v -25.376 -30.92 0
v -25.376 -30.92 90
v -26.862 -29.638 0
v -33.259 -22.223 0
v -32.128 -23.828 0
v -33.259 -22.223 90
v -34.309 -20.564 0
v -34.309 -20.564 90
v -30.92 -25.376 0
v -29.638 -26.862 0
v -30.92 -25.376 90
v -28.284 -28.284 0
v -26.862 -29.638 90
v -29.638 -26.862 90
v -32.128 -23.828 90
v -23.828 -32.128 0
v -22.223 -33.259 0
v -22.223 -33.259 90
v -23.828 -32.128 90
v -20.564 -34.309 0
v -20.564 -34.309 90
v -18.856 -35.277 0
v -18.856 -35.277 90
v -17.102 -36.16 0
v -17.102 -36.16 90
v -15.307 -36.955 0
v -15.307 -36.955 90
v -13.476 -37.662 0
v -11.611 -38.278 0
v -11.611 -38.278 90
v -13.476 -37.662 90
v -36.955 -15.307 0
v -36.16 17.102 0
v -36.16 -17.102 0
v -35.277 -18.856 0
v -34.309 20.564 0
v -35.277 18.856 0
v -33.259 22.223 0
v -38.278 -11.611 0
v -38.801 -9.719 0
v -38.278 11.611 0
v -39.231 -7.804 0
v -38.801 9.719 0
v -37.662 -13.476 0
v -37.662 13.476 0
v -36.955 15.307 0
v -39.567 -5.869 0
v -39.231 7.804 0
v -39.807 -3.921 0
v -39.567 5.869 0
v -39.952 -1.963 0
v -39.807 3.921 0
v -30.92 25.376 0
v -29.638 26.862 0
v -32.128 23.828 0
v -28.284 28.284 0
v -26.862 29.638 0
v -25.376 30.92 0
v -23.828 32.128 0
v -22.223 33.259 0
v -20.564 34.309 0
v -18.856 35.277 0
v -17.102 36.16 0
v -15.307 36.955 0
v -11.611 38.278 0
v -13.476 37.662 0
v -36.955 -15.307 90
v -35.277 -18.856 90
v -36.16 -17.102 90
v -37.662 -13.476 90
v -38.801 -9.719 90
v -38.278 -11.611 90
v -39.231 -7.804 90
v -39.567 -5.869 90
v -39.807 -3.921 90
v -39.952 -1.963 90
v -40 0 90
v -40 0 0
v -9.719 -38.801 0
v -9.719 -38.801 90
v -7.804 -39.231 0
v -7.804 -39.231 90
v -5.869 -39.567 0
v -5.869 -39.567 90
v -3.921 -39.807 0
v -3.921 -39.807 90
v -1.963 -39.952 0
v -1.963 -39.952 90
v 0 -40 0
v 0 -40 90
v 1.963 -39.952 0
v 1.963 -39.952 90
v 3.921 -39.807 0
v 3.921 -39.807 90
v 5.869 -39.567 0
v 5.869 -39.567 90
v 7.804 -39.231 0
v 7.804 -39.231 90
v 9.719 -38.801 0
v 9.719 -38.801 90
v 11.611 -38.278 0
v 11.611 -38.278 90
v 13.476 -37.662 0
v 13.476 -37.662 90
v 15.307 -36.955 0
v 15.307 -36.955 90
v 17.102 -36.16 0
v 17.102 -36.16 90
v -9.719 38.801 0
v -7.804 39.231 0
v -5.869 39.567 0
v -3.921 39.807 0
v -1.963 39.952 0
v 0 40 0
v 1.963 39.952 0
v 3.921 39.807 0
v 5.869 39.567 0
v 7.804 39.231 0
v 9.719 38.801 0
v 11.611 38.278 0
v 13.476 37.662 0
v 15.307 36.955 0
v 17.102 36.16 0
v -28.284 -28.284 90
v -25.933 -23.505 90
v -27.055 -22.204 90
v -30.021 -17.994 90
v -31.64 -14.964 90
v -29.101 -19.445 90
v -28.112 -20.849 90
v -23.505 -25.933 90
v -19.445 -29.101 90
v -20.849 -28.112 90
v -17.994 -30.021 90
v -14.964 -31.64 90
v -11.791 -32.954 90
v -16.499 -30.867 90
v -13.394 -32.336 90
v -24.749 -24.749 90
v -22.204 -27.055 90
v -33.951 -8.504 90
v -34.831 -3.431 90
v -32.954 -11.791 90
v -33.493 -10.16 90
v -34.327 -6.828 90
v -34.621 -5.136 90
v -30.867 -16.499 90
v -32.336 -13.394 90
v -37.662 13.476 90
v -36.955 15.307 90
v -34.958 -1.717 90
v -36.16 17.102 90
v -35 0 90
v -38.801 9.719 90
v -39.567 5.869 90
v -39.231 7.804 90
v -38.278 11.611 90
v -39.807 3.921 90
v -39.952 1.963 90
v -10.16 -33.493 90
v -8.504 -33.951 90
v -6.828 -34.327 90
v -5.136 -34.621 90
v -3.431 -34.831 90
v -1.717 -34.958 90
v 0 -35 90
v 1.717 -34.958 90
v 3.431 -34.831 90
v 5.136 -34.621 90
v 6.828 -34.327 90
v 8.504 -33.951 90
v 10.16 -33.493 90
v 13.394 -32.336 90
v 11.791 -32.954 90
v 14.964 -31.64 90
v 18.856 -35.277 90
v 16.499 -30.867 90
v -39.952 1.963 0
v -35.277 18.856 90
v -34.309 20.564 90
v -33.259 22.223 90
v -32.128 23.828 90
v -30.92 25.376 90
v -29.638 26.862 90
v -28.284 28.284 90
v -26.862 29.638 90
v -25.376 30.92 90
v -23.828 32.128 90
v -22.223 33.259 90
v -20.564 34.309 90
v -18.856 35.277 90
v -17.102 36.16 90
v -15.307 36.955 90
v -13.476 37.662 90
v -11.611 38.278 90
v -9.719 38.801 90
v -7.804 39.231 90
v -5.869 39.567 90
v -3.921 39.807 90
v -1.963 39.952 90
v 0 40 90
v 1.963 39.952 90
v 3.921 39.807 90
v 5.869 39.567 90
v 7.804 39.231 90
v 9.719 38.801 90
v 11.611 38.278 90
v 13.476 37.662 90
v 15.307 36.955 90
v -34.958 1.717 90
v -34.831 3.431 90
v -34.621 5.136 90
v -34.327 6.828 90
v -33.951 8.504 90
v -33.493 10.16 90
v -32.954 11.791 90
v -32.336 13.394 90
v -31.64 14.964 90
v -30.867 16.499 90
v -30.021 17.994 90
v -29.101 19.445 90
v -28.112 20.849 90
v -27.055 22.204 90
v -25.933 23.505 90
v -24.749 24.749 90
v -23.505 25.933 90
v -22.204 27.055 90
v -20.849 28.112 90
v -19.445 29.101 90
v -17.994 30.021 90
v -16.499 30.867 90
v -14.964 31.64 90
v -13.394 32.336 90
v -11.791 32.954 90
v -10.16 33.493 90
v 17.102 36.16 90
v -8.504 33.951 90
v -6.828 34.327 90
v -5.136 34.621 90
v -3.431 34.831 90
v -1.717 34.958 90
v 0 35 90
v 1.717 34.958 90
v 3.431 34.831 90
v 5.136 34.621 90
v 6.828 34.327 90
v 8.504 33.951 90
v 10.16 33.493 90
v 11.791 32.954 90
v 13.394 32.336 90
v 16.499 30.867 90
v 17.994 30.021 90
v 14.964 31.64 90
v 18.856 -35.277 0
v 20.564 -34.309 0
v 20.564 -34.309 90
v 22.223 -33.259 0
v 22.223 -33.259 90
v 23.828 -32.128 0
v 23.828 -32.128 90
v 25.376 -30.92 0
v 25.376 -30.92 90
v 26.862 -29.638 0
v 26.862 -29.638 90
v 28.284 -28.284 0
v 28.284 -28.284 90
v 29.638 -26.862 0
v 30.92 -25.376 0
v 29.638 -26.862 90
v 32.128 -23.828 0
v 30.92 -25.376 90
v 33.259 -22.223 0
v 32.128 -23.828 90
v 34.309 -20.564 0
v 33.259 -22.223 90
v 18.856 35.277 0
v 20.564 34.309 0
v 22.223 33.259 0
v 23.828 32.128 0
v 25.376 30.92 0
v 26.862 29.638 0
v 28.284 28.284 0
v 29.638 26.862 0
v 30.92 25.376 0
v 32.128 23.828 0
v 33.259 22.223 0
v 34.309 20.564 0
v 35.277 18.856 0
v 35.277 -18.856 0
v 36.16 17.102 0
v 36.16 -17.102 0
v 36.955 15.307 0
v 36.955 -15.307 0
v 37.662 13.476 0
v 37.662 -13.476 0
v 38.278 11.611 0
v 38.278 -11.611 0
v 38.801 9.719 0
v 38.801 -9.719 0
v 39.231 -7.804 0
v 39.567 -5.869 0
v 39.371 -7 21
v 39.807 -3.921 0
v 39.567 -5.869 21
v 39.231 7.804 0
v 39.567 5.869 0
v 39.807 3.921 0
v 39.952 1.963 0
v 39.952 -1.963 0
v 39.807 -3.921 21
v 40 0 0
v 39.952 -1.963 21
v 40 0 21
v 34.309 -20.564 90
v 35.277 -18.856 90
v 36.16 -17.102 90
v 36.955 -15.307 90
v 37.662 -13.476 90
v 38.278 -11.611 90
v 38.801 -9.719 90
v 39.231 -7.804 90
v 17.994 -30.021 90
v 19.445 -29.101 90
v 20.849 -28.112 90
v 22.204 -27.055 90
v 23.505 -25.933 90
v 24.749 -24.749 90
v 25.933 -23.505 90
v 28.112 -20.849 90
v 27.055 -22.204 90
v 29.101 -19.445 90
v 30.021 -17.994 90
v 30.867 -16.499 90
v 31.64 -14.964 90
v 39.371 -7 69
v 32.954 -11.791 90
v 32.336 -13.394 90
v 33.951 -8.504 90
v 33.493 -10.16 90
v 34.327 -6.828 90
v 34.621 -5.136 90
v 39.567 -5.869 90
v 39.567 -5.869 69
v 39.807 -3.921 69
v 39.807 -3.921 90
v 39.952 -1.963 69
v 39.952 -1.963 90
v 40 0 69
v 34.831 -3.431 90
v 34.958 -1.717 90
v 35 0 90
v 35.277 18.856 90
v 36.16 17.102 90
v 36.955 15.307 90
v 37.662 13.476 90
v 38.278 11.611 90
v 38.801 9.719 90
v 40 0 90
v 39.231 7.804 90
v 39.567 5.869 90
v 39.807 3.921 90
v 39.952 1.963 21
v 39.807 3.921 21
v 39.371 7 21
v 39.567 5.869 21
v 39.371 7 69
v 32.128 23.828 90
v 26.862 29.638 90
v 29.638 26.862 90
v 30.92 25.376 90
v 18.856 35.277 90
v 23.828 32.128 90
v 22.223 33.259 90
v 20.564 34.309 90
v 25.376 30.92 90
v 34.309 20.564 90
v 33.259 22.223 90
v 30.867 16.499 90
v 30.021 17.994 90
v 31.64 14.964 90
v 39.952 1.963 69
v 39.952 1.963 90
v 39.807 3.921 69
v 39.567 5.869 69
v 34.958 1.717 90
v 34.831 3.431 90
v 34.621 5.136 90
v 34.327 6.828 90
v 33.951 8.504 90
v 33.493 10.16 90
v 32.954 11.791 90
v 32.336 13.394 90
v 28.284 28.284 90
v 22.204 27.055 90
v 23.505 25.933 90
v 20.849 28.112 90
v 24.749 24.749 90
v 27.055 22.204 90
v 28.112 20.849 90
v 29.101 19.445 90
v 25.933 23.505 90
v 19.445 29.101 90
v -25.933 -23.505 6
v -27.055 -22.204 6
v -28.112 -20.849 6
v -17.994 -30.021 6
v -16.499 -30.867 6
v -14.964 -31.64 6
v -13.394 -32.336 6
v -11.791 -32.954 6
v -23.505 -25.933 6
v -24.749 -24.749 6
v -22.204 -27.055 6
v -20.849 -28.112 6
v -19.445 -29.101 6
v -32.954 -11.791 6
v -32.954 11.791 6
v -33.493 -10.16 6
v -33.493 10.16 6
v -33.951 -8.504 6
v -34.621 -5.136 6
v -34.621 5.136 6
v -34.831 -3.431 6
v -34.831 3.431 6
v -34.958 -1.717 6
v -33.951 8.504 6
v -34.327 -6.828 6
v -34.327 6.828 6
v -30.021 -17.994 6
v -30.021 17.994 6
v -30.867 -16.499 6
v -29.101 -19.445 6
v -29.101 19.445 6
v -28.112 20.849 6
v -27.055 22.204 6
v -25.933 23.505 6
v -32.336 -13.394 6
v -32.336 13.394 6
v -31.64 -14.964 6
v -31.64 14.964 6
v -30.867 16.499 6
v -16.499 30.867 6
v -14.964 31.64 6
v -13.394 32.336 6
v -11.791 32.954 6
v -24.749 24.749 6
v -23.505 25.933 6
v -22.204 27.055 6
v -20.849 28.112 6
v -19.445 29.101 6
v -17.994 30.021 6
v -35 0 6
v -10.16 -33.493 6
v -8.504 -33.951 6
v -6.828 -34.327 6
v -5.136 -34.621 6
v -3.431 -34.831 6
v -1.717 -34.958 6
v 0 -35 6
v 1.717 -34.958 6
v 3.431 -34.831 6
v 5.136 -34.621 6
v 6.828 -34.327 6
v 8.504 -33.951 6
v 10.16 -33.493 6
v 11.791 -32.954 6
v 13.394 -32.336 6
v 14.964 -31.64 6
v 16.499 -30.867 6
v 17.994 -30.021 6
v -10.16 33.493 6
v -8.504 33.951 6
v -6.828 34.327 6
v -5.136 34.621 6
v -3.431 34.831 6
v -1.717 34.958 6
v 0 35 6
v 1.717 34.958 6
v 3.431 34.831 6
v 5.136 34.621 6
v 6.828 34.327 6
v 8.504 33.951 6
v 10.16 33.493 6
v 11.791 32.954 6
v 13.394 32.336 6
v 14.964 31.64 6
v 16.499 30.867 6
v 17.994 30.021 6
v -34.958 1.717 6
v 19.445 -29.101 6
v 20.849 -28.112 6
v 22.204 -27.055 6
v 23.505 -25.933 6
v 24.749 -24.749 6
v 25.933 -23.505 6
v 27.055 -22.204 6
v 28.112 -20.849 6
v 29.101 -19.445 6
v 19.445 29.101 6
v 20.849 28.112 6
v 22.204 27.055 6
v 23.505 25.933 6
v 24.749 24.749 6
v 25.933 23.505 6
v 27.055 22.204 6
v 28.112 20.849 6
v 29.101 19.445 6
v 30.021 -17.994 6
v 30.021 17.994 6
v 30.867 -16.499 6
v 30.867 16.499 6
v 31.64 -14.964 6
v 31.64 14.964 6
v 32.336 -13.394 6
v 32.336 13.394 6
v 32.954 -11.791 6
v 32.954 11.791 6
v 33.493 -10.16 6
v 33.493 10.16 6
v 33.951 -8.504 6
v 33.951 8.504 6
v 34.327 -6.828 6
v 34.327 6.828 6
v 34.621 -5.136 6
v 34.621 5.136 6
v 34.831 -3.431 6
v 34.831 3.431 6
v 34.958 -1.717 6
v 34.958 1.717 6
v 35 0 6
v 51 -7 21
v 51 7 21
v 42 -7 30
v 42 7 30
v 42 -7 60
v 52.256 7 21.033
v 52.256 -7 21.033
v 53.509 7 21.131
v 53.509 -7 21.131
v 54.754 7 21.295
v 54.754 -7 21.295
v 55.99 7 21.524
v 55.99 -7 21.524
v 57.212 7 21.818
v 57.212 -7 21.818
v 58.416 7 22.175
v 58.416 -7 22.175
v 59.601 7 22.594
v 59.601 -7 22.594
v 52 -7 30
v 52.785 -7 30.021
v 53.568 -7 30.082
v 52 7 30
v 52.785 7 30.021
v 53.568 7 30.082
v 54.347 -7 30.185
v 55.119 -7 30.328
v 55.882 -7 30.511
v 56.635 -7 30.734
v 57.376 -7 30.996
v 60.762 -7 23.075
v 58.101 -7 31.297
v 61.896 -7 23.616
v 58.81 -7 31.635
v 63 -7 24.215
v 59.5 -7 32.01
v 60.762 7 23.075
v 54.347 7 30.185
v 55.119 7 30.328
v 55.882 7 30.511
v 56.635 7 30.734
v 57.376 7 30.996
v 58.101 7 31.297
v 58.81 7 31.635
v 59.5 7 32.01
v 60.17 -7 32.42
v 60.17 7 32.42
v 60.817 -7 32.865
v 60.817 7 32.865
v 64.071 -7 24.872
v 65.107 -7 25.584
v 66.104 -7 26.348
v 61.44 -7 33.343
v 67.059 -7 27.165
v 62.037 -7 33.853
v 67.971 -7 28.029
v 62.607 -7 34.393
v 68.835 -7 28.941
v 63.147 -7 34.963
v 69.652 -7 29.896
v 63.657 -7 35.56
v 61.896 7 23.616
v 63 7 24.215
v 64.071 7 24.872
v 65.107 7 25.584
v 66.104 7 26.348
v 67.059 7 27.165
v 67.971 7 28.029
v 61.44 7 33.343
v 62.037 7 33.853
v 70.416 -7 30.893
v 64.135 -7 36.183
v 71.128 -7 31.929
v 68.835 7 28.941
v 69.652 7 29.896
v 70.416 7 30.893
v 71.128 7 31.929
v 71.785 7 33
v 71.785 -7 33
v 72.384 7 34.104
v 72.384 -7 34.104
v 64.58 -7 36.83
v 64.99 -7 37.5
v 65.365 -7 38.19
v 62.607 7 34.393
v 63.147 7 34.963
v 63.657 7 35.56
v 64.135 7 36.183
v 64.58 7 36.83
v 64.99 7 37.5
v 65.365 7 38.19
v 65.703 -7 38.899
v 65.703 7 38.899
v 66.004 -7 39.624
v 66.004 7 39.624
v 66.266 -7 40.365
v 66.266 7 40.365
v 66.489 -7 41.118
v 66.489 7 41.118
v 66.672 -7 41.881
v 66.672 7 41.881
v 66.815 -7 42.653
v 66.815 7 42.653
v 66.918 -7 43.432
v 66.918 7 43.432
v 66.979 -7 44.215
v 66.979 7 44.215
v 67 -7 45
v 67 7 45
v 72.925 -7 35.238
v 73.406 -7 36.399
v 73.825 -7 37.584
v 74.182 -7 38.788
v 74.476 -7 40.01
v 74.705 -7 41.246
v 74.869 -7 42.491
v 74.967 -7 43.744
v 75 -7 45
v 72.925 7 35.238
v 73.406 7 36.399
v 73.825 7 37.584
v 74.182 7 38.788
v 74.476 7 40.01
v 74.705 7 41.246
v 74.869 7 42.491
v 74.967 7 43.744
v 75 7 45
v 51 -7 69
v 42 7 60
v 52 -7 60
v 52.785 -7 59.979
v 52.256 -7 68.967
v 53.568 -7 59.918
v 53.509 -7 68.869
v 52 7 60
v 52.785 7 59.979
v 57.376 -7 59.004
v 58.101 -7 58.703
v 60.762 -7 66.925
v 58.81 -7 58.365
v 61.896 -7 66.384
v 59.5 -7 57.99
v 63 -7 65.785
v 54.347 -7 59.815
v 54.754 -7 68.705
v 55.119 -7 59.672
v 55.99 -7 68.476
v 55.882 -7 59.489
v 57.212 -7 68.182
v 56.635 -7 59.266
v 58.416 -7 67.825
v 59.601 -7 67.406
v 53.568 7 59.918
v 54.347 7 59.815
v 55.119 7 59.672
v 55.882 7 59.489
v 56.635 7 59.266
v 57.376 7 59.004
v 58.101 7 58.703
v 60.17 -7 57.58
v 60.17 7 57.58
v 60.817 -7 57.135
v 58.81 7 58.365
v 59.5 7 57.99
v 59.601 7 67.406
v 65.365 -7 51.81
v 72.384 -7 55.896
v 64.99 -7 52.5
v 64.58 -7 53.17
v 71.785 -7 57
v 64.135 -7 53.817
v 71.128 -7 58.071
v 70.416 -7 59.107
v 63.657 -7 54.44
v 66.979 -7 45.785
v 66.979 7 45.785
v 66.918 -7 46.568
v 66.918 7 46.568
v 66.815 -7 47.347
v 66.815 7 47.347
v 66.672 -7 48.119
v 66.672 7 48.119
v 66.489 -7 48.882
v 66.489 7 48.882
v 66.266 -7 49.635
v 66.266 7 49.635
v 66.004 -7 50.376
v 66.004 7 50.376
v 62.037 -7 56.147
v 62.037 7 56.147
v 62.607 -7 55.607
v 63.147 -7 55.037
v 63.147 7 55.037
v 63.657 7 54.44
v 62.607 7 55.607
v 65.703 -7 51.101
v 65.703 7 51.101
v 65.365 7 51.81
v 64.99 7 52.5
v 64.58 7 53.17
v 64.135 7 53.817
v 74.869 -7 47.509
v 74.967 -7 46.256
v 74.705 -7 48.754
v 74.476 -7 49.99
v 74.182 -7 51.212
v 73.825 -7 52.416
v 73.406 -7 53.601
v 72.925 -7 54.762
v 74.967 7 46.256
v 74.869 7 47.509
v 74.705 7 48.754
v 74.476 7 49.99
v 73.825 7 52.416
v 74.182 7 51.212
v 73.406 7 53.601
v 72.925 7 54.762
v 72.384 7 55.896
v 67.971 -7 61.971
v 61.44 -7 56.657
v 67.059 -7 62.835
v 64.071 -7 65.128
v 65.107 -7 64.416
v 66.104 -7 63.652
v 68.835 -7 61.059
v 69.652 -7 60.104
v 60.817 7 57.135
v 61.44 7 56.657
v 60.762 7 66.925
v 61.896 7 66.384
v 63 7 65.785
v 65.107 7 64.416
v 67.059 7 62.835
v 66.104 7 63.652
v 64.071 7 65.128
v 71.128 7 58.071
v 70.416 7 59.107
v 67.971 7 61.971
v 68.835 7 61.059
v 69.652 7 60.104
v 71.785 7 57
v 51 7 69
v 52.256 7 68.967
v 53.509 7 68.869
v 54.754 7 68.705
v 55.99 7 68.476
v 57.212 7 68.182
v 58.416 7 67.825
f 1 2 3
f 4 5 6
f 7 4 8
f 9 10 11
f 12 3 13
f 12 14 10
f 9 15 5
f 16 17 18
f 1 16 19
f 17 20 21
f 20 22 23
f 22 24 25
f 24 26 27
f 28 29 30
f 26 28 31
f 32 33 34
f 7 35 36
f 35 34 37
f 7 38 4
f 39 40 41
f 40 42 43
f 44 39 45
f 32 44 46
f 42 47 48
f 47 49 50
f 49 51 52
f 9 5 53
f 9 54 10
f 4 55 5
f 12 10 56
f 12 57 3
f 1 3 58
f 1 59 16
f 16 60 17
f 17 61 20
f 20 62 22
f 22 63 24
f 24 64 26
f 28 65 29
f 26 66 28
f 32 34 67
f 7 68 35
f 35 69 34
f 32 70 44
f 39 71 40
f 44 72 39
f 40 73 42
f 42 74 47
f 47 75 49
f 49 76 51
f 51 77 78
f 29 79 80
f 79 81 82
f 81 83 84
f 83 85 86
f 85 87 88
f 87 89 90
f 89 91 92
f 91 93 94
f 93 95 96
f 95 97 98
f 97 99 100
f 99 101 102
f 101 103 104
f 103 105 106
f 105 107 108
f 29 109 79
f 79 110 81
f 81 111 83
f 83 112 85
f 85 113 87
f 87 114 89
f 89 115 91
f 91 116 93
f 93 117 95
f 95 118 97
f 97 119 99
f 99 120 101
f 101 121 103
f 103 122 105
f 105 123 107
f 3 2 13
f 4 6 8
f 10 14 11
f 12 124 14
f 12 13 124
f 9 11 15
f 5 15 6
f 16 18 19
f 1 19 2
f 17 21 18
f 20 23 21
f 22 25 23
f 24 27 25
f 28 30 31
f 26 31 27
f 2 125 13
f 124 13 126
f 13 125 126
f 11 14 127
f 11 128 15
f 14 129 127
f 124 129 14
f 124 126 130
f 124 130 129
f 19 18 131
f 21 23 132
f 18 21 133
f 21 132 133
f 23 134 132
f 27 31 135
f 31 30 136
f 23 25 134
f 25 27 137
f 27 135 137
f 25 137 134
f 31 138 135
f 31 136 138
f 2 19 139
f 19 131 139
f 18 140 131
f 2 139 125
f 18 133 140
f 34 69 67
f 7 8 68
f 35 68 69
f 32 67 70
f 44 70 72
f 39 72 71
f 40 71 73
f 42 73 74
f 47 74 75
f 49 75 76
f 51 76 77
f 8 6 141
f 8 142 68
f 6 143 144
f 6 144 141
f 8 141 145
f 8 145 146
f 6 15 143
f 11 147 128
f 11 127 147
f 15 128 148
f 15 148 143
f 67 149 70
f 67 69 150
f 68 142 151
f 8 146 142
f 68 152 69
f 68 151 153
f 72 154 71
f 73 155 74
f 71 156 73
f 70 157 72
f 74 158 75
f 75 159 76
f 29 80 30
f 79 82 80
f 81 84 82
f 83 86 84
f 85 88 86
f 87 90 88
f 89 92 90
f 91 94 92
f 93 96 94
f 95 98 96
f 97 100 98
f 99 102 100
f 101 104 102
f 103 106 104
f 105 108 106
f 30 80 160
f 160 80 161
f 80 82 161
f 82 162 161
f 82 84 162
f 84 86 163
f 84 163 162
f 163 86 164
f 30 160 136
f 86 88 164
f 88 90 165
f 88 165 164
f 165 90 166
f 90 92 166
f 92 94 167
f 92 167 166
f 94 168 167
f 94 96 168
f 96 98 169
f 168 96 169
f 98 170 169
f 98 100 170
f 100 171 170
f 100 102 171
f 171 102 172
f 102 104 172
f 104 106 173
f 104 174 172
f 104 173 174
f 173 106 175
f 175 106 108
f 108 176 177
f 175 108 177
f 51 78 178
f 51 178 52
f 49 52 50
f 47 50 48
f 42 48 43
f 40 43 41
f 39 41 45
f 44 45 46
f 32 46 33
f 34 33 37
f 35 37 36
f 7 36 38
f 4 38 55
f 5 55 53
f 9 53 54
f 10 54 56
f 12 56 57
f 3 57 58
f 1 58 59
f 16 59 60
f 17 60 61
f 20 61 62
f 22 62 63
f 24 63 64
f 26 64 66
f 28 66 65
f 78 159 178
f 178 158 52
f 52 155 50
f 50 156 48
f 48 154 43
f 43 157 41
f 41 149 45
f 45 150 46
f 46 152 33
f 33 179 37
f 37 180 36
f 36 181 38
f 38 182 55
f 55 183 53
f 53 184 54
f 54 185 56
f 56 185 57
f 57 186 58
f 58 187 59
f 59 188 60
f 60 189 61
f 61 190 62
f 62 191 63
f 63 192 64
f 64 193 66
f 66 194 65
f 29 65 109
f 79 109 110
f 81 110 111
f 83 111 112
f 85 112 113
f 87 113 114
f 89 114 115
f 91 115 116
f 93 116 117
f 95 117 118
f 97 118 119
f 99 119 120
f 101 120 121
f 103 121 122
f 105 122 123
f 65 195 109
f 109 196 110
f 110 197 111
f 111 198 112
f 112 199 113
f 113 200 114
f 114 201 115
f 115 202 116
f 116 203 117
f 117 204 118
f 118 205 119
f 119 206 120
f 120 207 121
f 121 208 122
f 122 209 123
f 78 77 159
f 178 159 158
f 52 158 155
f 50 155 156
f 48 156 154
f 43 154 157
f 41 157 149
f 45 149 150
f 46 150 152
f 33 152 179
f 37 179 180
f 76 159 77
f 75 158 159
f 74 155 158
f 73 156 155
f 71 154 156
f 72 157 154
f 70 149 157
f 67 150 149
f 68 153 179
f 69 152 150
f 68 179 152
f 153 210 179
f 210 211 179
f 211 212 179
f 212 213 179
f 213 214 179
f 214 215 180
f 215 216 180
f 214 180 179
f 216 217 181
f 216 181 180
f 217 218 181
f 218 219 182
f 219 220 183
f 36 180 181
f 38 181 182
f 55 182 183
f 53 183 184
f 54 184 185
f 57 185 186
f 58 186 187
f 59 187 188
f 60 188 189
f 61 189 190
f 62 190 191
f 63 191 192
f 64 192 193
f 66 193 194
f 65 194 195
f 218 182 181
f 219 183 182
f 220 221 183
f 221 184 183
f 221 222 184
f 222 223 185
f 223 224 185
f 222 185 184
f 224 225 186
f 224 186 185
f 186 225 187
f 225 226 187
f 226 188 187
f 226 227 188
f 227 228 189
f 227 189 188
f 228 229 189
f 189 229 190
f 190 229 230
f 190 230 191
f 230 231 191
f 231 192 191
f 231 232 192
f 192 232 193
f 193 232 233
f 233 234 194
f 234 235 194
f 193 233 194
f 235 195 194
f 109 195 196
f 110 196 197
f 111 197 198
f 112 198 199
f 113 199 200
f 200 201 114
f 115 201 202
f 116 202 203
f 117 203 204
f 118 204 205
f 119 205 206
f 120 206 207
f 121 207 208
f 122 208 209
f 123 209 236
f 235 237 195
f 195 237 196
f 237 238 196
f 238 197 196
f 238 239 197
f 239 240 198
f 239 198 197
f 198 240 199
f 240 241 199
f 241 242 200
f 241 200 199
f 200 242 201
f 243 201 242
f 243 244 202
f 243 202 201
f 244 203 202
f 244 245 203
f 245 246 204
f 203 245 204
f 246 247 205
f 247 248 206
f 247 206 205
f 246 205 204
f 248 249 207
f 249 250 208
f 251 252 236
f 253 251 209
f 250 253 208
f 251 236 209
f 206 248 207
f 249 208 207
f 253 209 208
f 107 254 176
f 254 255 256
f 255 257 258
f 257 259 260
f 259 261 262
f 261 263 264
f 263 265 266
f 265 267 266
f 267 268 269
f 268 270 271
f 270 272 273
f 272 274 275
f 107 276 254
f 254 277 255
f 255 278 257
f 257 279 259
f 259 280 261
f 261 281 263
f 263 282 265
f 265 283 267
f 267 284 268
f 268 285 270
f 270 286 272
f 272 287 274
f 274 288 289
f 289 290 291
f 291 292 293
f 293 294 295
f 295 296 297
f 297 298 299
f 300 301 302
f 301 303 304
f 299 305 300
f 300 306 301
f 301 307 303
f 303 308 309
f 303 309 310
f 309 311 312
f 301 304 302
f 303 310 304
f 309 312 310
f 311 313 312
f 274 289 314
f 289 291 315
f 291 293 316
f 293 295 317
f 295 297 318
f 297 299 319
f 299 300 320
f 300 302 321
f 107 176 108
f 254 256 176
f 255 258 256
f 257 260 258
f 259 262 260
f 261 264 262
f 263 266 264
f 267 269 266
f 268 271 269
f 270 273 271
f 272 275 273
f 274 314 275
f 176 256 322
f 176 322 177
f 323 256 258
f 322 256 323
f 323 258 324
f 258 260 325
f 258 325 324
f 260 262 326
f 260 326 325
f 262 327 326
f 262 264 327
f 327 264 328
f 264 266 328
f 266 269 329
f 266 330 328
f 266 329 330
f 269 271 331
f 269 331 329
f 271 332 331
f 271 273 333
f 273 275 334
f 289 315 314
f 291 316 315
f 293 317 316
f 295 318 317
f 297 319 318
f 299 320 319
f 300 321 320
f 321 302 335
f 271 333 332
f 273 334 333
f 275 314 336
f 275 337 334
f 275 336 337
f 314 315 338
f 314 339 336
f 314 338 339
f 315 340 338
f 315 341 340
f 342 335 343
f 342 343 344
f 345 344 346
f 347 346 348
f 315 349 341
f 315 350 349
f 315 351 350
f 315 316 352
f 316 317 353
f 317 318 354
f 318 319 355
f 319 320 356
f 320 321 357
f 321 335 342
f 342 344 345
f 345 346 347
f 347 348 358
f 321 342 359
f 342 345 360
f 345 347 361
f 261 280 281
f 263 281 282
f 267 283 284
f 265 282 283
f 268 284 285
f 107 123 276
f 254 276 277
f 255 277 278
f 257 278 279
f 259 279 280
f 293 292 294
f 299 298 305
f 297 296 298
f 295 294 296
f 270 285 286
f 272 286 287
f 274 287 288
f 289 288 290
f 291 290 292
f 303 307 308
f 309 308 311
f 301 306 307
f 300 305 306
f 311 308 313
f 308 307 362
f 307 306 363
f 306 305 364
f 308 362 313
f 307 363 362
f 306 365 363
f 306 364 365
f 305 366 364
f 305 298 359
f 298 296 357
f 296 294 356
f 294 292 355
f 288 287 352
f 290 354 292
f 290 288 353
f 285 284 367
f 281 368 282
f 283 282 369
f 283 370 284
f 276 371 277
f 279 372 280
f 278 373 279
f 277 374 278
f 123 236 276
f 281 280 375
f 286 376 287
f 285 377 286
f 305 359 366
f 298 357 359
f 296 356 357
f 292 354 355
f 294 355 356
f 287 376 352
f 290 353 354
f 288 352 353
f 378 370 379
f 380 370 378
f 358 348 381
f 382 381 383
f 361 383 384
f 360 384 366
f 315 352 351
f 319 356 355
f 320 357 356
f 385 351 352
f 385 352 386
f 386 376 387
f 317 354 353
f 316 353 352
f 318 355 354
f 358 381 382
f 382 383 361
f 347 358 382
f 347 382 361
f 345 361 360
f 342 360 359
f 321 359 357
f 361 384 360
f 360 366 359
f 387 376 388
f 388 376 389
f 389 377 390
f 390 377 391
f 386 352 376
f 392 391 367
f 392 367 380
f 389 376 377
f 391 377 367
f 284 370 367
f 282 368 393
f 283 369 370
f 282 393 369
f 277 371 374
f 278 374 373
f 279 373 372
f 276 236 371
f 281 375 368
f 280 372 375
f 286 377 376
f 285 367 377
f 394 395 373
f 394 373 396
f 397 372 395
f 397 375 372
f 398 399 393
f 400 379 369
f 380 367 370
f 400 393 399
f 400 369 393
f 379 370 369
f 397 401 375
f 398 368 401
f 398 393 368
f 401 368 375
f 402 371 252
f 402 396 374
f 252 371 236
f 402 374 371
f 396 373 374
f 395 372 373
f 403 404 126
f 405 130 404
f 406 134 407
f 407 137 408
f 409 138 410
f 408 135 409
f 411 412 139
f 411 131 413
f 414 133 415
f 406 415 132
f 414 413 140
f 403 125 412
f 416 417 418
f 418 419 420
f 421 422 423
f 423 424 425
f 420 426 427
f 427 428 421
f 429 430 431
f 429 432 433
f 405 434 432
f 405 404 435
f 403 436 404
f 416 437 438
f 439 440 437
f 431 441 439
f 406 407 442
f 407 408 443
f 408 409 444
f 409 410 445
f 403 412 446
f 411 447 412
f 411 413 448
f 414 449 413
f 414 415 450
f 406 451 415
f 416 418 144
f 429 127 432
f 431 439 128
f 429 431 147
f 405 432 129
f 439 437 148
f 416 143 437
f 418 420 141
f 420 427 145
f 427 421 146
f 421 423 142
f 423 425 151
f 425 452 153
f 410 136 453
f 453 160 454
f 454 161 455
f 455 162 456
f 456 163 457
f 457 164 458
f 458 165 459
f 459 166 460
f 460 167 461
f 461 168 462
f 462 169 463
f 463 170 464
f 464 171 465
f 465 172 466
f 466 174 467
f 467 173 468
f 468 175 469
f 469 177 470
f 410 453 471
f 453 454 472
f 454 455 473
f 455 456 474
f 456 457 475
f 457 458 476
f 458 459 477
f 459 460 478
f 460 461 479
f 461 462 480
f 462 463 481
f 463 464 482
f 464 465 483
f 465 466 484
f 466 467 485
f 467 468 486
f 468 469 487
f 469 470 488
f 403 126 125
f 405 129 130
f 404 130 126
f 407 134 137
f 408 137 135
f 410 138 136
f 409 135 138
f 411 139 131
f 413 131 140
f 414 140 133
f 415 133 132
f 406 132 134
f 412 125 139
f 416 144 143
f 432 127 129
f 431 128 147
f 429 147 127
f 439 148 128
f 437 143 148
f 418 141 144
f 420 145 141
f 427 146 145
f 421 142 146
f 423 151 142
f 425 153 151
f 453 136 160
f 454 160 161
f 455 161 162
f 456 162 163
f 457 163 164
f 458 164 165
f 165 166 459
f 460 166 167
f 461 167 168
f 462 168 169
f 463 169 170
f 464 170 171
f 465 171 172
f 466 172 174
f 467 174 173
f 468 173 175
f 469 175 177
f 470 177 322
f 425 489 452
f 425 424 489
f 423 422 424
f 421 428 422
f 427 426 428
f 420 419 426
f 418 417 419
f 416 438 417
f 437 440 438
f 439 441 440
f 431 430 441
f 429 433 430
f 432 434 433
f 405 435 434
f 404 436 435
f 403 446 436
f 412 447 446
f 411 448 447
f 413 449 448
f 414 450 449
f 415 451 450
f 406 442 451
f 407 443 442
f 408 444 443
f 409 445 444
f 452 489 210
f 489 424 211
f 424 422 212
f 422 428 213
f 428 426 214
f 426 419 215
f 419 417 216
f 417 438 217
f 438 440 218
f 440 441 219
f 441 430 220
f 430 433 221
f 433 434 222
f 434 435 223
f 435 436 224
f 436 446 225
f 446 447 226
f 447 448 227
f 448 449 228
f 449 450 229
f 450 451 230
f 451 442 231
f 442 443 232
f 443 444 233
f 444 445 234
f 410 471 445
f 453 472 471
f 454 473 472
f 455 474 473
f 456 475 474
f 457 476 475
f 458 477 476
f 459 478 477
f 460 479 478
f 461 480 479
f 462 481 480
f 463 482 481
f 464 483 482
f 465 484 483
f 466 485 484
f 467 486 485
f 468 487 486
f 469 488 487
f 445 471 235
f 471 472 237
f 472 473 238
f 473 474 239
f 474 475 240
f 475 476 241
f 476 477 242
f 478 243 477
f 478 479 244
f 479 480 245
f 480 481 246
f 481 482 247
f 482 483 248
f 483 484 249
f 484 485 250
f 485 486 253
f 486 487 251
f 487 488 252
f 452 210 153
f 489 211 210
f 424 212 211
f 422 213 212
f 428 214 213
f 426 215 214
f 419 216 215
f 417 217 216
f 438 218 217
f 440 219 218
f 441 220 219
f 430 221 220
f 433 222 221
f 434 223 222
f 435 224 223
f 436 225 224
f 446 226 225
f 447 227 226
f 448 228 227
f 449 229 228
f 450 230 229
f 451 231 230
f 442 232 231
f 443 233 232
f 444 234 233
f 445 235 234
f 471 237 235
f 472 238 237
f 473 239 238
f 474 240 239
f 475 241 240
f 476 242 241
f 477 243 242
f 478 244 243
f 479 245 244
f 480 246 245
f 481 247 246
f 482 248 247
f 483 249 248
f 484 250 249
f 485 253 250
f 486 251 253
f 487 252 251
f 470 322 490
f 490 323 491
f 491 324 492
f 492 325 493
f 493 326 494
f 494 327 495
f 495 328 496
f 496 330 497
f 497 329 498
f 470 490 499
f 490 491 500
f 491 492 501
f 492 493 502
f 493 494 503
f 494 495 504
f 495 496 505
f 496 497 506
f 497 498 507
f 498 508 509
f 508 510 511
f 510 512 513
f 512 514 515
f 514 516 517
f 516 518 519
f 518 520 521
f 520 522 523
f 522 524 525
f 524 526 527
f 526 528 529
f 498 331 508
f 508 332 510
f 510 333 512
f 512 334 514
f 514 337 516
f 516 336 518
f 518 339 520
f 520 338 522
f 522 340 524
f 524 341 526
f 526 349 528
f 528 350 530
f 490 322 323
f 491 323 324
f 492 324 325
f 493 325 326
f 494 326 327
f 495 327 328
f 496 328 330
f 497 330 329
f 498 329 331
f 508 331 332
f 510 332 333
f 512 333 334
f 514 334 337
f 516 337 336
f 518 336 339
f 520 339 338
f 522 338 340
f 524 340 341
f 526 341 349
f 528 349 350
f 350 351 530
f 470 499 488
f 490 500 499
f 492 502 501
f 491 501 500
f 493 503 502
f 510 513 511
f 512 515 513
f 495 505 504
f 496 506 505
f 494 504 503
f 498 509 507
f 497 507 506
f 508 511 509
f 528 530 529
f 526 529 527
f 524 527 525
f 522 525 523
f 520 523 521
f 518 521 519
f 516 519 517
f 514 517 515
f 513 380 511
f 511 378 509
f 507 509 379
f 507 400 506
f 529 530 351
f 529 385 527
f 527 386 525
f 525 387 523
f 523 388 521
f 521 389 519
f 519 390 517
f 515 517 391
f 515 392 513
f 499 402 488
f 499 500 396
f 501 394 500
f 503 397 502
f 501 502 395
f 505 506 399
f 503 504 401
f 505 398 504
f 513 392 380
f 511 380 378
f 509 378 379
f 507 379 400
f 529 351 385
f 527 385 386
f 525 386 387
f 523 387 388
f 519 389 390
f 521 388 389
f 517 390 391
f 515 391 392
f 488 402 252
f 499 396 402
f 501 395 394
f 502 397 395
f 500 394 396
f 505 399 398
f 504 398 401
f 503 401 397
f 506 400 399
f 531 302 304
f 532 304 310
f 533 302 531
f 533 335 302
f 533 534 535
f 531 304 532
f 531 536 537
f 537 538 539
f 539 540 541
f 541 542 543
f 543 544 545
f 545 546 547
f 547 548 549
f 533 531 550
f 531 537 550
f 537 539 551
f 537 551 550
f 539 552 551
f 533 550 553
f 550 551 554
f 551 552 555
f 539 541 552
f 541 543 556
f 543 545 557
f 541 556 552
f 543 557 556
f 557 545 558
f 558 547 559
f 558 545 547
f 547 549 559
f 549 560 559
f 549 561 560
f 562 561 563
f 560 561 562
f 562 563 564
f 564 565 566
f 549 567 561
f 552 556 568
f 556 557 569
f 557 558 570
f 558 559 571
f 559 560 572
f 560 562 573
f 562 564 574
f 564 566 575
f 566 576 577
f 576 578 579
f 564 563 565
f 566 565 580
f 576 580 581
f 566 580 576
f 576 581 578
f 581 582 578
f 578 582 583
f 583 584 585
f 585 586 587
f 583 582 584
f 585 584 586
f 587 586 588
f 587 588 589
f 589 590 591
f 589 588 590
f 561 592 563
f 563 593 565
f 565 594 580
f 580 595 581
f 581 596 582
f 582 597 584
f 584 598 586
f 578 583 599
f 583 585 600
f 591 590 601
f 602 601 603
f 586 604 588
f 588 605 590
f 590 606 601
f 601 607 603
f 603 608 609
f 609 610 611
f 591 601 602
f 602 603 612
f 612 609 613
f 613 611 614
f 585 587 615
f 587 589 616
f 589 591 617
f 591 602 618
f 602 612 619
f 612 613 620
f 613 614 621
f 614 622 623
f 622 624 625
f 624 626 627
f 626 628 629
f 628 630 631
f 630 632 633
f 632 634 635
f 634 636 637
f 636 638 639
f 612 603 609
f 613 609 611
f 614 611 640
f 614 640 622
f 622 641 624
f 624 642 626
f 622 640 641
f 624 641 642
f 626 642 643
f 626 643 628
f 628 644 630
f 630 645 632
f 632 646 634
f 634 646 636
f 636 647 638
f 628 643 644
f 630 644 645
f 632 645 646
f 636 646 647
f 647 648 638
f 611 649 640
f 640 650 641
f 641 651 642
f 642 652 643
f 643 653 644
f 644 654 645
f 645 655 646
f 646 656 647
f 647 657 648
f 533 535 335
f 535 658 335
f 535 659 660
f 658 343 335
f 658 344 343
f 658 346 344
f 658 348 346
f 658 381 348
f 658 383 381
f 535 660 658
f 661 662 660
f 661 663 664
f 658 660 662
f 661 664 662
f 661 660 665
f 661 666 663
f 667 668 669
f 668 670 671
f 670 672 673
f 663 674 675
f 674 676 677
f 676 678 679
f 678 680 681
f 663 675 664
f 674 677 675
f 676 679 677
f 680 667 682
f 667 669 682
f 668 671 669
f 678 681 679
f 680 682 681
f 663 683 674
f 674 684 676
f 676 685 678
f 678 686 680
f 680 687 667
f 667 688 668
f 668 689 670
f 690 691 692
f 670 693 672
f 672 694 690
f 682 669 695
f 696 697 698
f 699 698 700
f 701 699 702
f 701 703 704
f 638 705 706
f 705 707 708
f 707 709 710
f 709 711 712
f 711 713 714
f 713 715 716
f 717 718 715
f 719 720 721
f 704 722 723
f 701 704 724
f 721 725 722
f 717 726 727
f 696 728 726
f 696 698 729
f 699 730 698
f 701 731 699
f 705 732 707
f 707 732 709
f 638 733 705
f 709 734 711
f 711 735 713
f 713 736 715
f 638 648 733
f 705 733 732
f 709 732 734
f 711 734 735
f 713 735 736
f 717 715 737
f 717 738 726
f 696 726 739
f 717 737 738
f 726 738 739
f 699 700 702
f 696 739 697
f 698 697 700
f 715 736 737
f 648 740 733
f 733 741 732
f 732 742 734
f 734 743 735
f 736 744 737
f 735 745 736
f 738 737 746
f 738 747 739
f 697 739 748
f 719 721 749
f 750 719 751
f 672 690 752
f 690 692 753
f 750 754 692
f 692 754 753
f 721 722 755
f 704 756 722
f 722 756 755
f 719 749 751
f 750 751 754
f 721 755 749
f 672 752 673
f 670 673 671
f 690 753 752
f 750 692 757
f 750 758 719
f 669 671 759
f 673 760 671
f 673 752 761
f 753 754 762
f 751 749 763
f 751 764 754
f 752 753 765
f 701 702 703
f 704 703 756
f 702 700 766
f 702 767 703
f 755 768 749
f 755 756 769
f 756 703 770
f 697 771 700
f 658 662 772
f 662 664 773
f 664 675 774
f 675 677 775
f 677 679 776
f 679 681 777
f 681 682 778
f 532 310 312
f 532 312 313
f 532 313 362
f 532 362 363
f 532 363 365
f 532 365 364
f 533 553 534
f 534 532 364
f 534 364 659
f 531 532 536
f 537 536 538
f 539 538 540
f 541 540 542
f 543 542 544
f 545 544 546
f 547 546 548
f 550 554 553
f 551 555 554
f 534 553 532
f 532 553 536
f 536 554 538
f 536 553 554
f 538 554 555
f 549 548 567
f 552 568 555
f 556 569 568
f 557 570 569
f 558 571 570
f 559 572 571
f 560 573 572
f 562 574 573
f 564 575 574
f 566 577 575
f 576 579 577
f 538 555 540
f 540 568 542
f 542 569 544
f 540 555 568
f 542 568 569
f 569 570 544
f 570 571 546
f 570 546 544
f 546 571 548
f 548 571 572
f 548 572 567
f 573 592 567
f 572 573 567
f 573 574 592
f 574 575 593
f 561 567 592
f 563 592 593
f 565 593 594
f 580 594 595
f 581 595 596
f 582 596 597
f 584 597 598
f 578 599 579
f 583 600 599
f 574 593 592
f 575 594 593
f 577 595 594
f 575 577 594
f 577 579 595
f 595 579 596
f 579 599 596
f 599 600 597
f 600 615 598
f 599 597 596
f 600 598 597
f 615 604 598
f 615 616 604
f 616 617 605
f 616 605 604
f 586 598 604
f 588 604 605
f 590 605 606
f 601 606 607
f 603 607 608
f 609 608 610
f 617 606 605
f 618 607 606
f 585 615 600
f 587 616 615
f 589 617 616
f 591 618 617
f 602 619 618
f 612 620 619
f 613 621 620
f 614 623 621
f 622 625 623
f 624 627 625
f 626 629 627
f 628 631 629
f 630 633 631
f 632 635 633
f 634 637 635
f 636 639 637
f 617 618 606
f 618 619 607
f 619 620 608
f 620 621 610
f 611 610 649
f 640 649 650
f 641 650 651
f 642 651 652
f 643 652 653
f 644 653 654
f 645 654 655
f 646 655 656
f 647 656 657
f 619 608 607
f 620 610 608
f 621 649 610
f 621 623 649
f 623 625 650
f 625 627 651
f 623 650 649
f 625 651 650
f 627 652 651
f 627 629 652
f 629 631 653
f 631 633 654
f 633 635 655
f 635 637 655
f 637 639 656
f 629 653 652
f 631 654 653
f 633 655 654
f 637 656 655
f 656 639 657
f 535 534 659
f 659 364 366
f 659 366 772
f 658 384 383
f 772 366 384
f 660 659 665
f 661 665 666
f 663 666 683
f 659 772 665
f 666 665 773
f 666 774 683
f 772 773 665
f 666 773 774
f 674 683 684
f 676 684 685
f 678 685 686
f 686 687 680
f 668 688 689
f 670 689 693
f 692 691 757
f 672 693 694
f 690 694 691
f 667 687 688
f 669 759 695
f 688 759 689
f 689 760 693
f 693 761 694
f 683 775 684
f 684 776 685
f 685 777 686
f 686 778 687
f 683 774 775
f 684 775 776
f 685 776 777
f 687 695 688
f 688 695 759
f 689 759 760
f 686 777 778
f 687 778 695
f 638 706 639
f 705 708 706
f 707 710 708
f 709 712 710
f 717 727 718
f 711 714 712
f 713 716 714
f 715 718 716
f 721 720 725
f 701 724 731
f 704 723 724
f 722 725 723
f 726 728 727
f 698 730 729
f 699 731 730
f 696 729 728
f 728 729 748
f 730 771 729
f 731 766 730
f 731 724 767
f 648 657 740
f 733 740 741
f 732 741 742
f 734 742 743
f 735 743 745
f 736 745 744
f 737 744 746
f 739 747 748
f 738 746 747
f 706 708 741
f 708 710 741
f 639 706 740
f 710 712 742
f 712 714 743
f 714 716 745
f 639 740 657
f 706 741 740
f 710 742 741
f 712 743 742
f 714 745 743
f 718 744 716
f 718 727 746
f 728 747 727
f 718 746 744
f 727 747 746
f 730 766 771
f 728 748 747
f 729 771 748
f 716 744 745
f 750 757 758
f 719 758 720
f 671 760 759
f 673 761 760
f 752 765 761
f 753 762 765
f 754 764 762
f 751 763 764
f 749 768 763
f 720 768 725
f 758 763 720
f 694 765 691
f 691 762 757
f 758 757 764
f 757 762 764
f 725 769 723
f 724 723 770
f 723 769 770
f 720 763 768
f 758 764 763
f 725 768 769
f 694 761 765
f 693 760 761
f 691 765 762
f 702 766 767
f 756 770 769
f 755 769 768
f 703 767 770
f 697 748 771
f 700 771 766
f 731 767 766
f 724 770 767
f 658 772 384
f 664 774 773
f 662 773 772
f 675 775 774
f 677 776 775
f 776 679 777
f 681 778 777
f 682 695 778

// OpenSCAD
$fn = 128;

mug_outer_d = 80;
mug_inner_d = 70;
mug_height = 90;
bottom_thickness = 6;

handle_depth = 14;       // Y方向の厚み
handle_z = mug_height / 2;

// 取手の外形：本体側が直線、外側が半円
outer_flat_x = mug_outer_d / 2 - 3;  // 本体に3mm食い込ませる
outer_arc_x = mug_outer_d / 2 + 11;
outer_radius = 24;

// 内側の空間：高さ30mm、幅25mm
inner_radius = 15;
inner_arc_x = mug_outer_d / 2 + 12;
inner_flat_x = inner_arc_x - (25 - inner_radius);

module d_profile(flat_x, arc_x, radius, center_z) {
    polygon(points = concat(
        [[flat_x, center_z - radius]],
        [for (a = [-90:3:90])
            [arc_x + radius * cos(a),
             center_z + radius * sin(a)]],
        [[flat_x, center_z + radius]]
    ));
}

module mug_body() {
    difference() {
        cylinder(d = mug_outer_d, h = mug_height);
        translate([0, 0, bottom_thickness])
            cylinder(
                d = mug_inner_d,
                h = mug_height - bottom_thickness + 1
            );
    }
}

module handle() {
    rotate([90, 0, 0])
        linear_extrude(height = handle_depth, center = true)
            difference() {
                d_profile(outer_flat_x, outer_arc_x,
                          outer_radius, handle_z);
                d_profile(inner_flat_x, inner_arc_x,
                          inner_radius, handle_z);
            }
}

union() {
    mug_body();
    handle();
}
